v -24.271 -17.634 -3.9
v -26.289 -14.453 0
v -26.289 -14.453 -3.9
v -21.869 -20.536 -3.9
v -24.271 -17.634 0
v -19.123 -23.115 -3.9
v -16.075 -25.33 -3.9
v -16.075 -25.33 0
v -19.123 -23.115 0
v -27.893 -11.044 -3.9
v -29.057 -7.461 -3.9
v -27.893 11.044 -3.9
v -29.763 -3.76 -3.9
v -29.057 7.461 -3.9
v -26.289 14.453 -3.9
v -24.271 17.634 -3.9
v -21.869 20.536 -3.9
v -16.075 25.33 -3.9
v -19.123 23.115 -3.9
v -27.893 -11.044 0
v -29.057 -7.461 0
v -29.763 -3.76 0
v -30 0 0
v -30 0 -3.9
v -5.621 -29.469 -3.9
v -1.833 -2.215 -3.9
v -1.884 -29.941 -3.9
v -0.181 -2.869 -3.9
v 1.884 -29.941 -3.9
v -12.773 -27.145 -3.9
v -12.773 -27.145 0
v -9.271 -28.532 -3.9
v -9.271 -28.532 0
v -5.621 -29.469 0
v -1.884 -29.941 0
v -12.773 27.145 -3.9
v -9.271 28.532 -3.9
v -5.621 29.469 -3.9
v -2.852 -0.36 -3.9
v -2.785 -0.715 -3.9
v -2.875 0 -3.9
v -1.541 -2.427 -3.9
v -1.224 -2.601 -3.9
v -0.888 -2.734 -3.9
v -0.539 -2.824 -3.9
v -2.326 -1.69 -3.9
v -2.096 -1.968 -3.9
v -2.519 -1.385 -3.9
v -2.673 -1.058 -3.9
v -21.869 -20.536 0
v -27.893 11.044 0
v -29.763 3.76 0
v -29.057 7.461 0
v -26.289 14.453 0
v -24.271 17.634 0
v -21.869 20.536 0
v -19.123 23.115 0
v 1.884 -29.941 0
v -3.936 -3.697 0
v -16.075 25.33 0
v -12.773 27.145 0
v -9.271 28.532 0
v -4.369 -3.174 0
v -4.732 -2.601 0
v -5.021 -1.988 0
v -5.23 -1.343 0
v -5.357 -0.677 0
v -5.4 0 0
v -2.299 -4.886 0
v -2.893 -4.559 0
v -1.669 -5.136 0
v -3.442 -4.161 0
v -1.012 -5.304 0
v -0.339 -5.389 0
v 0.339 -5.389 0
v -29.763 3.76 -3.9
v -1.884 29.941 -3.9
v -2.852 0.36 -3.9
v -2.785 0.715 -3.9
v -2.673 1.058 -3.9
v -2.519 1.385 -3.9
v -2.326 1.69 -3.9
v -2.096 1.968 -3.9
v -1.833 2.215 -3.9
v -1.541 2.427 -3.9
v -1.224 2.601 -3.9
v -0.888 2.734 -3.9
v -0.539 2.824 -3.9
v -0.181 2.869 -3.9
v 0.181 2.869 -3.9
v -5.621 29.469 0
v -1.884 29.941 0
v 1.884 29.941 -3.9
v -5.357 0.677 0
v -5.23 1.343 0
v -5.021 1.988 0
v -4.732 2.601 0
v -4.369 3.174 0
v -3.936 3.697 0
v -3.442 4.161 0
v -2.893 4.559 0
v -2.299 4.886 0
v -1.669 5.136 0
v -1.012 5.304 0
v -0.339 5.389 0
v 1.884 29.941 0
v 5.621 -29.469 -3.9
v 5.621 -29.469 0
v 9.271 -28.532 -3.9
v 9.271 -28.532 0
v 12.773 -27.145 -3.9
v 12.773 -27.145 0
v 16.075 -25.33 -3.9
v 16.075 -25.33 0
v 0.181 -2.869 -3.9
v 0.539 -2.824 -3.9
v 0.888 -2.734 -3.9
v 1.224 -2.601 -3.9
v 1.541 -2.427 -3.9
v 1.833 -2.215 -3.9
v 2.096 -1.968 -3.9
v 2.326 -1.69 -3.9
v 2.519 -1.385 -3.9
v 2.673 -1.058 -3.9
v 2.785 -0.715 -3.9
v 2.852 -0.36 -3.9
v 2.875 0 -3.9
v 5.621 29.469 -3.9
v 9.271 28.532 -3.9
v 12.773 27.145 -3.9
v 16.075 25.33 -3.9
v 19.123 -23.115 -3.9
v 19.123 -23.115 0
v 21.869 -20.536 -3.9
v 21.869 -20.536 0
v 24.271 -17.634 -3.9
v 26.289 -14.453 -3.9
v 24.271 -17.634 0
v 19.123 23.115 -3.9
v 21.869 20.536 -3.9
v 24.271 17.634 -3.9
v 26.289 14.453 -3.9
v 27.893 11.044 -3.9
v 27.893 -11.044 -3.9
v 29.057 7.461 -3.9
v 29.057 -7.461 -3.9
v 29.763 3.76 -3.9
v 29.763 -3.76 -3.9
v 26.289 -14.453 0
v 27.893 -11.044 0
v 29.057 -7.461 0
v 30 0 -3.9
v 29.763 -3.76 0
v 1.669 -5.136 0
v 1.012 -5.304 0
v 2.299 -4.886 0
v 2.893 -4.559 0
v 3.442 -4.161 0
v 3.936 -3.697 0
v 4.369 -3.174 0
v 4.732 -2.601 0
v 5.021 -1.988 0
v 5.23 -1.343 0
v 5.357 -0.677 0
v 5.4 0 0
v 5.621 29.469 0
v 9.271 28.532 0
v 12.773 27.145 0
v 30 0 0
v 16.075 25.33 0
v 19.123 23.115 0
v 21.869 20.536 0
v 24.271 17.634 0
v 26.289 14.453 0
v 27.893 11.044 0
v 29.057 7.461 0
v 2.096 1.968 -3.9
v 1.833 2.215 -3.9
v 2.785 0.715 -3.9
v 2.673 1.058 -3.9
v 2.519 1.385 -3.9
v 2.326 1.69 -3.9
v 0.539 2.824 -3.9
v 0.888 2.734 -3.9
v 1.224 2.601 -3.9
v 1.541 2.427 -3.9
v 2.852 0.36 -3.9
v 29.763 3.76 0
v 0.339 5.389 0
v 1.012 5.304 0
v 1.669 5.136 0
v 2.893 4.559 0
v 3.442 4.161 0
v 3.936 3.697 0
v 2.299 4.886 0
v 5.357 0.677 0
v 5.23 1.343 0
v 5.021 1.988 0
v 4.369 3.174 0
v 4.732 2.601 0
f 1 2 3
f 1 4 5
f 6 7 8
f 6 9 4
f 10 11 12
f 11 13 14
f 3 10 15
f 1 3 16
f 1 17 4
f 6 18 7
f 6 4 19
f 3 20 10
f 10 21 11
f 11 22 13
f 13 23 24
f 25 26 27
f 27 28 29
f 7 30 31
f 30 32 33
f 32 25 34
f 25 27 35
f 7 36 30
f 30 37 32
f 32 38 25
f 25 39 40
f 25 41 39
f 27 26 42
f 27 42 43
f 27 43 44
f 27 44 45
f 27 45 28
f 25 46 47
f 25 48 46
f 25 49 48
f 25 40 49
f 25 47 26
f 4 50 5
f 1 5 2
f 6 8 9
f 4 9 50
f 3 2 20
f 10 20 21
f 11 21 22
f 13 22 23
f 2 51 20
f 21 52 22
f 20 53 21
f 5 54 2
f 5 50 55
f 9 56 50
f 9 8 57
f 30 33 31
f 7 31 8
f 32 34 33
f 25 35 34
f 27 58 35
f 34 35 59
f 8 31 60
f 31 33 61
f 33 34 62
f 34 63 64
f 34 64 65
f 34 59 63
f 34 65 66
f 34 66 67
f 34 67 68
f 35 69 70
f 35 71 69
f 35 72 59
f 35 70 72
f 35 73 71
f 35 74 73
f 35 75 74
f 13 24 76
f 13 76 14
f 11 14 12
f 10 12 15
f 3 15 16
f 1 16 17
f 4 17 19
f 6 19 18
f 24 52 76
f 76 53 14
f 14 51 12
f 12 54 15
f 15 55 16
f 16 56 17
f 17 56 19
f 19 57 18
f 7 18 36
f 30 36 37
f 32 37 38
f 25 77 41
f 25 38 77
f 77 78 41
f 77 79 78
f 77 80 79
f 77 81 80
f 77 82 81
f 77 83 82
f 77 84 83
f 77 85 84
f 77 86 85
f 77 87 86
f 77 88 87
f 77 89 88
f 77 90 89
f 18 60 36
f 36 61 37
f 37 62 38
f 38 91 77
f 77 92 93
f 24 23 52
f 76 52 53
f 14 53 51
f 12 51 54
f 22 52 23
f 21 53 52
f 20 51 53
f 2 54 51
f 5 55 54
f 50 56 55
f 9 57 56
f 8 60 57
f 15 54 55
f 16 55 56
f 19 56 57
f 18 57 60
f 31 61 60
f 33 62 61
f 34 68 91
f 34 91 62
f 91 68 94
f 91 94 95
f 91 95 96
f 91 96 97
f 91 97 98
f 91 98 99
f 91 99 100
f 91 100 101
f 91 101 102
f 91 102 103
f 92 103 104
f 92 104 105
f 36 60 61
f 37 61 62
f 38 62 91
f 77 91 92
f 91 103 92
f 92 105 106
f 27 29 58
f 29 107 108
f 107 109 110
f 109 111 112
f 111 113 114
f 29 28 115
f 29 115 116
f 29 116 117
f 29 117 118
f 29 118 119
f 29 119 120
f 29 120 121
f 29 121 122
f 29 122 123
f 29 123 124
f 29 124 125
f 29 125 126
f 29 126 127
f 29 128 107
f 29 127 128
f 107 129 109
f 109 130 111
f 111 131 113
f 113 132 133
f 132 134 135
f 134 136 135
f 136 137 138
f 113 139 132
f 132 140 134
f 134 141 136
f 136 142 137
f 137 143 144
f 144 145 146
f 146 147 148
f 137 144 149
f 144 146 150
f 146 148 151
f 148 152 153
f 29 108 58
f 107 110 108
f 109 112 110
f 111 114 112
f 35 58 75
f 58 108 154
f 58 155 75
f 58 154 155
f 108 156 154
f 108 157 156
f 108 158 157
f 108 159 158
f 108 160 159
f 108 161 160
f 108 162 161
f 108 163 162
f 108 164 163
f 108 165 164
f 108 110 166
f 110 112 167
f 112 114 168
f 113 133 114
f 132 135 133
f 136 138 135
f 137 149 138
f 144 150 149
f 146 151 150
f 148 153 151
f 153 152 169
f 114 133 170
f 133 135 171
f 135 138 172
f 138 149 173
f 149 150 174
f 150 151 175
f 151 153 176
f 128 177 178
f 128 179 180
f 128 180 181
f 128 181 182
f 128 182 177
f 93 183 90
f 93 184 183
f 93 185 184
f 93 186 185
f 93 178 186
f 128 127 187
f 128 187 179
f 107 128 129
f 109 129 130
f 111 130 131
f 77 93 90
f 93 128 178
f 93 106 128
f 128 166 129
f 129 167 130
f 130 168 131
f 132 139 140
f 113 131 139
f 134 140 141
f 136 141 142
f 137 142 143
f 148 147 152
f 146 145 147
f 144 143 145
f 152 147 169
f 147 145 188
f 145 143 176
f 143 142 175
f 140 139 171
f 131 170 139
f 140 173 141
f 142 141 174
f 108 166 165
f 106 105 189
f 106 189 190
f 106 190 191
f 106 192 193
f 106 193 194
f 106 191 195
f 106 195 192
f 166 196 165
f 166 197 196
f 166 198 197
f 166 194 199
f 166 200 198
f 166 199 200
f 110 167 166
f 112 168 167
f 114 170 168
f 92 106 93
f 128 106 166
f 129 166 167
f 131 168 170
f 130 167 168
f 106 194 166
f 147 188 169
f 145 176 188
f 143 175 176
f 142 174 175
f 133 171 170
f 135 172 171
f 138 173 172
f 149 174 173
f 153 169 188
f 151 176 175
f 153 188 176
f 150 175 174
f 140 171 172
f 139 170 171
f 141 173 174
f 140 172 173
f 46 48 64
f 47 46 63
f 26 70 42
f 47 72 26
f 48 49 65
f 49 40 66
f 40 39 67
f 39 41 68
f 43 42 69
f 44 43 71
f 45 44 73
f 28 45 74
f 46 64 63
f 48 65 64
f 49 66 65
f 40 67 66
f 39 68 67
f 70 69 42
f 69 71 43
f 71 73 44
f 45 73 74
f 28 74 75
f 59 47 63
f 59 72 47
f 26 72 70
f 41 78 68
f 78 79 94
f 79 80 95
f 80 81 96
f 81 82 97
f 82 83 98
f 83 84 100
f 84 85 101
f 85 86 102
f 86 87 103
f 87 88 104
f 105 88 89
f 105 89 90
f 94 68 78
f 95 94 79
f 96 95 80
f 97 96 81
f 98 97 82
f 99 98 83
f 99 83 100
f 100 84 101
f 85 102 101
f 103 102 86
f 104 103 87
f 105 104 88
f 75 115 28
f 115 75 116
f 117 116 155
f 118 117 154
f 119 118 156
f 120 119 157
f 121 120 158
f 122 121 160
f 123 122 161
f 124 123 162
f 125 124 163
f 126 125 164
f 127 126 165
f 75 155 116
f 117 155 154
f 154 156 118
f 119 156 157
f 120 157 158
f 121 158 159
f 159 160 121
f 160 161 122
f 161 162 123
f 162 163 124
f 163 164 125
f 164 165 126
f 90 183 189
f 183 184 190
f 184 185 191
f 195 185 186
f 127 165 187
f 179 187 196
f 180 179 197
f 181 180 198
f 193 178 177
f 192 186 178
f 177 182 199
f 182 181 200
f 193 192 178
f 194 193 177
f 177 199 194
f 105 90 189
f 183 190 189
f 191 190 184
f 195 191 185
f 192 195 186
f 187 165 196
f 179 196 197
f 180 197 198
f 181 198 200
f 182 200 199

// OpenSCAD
$fn = 50;

difference() {
	union() {
		translate(v = [0, 0, -3.9]) {
			cylinder(h = 3.9, r = 30.0);
		}
		#translate(v = [0, 0, -6.9]) {
			cylinder(h = 6.9, r = 2.875);
		}
	}
	union() {
		translate(v = [0, 0, 0]) {
			rotate(a = [0, 0, 0]) {
				difference() {
					union() {
						translate(v = [0, 0, -6.9]) {
							cylinder(h = 6.9, r = 2.6);
						}
						translate(v = [0, 0, -3.9]) {
							cylinder(h = 3.9, r1 = 2.875, r2 = 5.4);
						}
						translate(v = [0, 0, -6.9]) {
							cylinder(h = 6.9, r = 2.875);
						}
						translate(v = [0, 0, -6.9]) {
							cylinder(h = 6.9, r = 2.6);
						}
					}
					union();
				}
			}
		}
	}
}
